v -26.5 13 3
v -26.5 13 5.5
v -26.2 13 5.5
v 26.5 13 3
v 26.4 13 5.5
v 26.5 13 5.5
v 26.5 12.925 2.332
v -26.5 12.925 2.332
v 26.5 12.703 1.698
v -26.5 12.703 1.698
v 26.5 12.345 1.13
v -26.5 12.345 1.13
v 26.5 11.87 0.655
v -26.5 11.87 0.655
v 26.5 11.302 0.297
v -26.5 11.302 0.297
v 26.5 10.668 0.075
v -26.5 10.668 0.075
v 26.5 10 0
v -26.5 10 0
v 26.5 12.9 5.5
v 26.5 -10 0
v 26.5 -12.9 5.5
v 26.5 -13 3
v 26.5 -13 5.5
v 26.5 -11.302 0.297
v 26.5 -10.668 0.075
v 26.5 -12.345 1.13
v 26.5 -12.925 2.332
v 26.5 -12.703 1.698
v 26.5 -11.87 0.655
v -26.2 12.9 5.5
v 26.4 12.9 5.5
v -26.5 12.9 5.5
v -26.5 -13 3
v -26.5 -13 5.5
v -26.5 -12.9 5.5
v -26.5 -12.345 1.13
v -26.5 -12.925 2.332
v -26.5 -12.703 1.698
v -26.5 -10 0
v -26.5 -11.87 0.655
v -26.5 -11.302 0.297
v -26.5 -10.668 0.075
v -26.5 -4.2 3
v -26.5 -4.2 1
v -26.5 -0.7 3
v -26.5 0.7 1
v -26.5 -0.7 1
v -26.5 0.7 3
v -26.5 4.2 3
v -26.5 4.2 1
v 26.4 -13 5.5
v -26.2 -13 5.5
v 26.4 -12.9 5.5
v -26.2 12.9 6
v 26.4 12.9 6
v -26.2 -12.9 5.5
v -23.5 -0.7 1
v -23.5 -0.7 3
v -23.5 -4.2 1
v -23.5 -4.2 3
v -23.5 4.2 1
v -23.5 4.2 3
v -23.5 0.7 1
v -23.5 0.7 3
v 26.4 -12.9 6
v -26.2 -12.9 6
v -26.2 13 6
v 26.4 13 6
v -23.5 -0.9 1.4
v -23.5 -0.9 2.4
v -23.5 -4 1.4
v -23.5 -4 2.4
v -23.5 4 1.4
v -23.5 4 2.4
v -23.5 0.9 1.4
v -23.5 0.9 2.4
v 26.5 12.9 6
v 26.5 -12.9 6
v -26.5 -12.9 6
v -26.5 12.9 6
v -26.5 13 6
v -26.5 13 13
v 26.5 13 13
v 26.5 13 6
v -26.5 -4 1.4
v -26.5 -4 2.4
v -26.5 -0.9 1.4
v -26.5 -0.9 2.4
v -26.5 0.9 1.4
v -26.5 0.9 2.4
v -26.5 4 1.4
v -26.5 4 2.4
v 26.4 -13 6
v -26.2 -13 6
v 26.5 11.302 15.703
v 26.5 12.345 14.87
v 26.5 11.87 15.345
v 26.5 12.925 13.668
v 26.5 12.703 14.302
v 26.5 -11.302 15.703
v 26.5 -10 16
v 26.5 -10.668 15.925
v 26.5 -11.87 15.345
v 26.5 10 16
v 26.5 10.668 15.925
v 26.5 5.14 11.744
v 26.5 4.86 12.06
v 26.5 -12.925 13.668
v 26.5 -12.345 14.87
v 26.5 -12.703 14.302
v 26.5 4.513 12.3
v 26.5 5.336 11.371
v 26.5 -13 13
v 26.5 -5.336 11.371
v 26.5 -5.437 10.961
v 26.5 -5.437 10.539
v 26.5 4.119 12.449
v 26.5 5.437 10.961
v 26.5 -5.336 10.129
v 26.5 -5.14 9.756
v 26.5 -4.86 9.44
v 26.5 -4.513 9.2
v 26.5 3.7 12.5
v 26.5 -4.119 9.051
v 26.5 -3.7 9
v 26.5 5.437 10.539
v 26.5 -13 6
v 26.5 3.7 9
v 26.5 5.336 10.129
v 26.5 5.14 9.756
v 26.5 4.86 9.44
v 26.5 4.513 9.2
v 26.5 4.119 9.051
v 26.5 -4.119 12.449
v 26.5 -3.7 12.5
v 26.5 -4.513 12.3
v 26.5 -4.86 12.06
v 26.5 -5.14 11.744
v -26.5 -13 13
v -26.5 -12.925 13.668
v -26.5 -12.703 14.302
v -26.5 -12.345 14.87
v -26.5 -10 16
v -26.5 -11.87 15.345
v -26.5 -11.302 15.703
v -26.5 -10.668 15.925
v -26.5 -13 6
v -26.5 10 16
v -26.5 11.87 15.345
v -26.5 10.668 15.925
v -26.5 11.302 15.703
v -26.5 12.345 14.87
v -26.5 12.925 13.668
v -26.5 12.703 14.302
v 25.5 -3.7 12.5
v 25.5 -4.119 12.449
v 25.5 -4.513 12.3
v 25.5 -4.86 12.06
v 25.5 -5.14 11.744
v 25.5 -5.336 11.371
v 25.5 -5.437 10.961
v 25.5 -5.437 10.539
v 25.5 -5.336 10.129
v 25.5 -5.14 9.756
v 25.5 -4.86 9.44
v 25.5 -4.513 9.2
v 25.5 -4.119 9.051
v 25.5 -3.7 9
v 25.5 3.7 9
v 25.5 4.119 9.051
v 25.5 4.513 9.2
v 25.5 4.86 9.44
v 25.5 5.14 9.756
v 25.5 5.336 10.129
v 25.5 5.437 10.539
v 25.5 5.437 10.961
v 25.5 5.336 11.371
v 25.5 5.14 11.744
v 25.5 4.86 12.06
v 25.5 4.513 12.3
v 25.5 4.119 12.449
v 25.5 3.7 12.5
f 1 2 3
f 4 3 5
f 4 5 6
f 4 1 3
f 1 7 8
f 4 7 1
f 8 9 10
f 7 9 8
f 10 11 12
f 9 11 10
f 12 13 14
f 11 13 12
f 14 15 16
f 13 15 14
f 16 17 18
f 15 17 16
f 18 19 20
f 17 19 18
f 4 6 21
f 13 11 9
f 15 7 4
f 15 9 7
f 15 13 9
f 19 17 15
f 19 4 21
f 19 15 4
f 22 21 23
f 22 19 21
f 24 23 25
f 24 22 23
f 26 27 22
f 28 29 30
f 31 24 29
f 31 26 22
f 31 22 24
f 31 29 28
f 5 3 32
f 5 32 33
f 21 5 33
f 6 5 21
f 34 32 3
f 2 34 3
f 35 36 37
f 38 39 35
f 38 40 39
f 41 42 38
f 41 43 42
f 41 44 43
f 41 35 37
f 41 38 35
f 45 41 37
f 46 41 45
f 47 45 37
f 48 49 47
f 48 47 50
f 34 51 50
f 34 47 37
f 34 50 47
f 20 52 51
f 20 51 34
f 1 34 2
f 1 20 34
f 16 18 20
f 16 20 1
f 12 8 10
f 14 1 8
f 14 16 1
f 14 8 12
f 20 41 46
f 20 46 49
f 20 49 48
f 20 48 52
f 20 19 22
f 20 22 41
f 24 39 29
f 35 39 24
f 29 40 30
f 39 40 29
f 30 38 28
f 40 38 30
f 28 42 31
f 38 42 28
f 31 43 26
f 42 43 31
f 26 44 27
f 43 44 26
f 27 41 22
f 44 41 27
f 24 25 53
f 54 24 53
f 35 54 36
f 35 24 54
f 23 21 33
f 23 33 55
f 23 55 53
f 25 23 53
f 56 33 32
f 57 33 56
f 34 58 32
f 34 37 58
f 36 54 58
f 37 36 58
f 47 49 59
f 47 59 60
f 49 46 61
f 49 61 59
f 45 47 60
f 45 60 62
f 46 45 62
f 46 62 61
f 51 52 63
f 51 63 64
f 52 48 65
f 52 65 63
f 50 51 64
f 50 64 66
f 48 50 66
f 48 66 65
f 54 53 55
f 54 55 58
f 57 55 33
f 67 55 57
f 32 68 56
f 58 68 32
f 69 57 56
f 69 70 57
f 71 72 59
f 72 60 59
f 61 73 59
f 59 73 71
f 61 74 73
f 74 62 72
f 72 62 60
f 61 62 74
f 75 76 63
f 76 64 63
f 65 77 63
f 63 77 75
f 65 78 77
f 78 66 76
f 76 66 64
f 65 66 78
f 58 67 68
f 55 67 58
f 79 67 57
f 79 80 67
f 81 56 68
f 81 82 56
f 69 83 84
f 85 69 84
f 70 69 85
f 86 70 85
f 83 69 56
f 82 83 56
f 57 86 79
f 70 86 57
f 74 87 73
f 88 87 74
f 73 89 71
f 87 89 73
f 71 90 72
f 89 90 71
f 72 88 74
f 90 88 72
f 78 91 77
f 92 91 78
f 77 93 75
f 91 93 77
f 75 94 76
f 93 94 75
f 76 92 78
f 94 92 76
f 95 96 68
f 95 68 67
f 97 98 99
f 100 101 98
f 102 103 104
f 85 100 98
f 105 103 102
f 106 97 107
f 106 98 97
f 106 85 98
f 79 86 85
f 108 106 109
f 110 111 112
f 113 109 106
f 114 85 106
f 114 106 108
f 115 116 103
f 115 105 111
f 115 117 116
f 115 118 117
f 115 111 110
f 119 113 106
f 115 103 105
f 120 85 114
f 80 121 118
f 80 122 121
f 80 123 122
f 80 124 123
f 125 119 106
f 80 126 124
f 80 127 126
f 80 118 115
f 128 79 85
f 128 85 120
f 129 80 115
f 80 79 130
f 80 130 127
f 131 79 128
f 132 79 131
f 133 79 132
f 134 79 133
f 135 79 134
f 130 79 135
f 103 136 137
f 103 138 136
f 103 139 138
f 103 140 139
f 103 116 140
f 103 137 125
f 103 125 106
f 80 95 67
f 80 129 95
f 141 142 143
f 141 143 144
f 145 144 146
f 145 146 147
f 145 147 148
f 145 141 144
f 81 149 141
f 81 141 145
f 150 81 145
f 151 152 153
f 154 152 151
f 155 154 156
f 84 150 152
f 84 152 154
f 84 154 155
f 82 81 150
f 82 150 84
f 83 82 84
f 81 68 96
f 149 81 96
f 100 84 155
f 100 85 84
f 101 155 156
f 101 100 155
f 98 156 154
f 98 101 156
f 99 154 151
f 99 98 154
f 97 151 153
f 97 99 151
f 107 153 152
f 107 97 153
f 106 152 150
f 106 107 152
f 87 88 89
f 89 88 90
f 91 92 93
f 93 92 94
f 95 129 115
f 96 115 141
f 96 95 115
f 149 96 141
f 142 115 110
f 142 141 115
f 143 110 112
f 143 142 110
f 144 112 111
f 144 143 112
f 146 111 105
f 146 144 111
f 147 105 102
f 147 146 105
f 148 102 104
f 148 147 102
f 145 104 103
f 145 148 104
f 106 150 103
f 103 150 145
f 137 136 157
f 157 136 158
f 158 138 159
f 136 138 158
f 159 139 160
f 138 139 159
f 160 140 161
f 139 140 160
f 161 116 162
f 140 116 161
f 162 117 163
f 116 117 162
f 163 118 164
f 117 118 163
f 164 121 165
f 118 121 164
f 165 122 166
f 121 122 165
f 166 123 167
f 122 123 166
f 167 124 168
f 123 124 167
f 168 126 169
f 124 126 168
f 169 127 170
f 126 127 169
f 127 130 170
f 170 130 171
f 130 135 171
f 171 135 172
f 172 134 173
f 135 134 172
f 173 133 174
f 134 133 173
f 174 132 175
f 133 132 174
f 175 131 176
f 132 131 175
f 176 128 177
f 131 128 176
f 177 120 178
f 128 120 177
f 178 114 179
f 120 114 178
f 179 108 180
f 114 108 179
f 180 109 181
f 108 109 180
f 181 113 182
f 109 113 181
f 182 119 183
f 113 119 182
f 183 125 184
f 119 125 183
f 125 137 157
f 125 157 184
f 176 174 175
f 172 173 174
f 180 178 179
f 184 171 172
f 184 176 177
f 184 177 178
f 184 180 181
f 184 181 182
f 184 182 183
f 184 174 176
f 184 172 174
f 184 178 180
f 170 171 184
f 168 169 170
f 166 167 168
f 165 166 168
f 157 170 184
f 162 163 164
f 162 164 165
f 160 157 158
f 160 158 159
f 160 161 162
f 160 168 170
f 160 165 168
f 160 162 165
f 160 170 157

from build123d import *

# Parameters (mm, degrees)
SKETCH_W        = 53
SKETCH_H        = 26
PAD_DEPTH       = 16
FILLET_R        = 3
SKETCH001_W     = 3.5
SKETCH001_H     = 2
POCKET_DEPTH    = 3
SKETCH002_W     = 26
SKETCH002_H     = 0.5
POCKET001_DEPTH = 0.3
SKETCH003_W     = 53
SKETCH003_H     = 0.5
POCKET002_DEPTH = 0.1
SKETCH004_W     = 26
SKETCH004_H     = 0.5
POCKET003_DEPTH = 0.1
SKETCH005_W     = 53
SKETCH005_H     = 0.5
POCKET004_DEPTH = 0.1
SKETCH006_W     = 3.1
SKETCH006_H     = 1
PAD001_DEPTH    = 3
POCKET005_DEPTH = 1


with BuildPart() as part:
    # Sketch → Pad (new body)
    with BuildSketch(Plane.XY):
        Rectangle(SKETCH_W, SKETCH_H)
    extrude(amount=PAD_DEPTH)

    # Fillet
    fillet_edges = [part.edges().sort_by_distance(p)[0] for p in [
        (0, -13, 16),
        (0, -13, 0),
        (0, 13, 16),
        (0, 13, 0),
    ]]
    fillet(fillet_edges, radius=FILLET_R)

    # Sketch001 (on Face2 of Fillet) → Pocket (cut)
    with BuildSketch(Plane(origin=(-26.5, 0, 0), x_dir=(0, -1, 0), z_dir=(-1, 0, 0))):
        with Locations((-2.45, 2)):
            Rectangle(SKETCH001_W, SKETCH001_H)
        with Locations((2.45, 2)):
            Rectangle(SKETCH001_W, SKETCH001_H)
    extrude(amount=-POCKET_DEPTH, mode=Mode.SUBTRACT)

    # Sketch002 (on Face2 of Pocket) → Pocket001 (cut)
    with BuildSketch(Plane(origin=(-26.5, 0, 0), x_dir=(0, -1, 0), z_dir=(-1, 0, 0))):
        with Locations((0, 5.75)):
            Rectangle(SKETCH002_W, SKETCH002_H)
    extrude(amount=-POCKET001_DEPTH, mode=Mode.SUBTRACT)

    # Sketch003 (on Face1 of Pocket001) → Pocket002 (cut)
    with BuildSketch(Plane(origin=(0, 13, 0), x_dir=(-1, 0, 0), z_dir=(0, 1, 0))):
        with Locations((0, 5.75)):
            Rectangle(SKETCH003_W, SKETCH003_H)
    extrude(amount=-POCKET002_DEPTH, mode=Mode.SUBTRACT)

    # Sketch004 (on Face3 of Pocket002) → Pocket003 (cut)
    with BuildSketch(Plane.YZ.offset(26.5)):
        with Locations((0, 5.75)):
            Rectangle(SKETCH004_W, SKETCH004_H)
    extrude(amount=-POCKET003_DEPTH, mode=Mode.SUBTRACT)

    # Sketch005 (on Face10 of Pocket003) → Pocket004 (cut)
    with BuildSketch(Plane.XZ.offset(13)):
        with Locations((0, 5.75)):
            Rectangle(SKETCH005_W, SKETCH005_H)
    extrude(amount=-POCKET004_DEPTH, mode=Mode.SUBTRACT)

    # Sketch006 (on Face7 of Pocket004) → Pad001 (join)
    with BuildSketch(Plane(origin=(-26.5, 0, 0), x_dir=(0, -1, 0), z_dir=(-1, 0, 0))):
        with Locations((-2.45, 1.9)):
            Rectangle(SKETCH006_W, SKETCH006_H)
        with Locations((2.45, 1.9)):
            Rectangle(SKETCH006_W, SKETCH006_H)
    extrude(amount=-PAD001_DEPTH)

    # Sketch007 (on Face45 of Pad001) → Pocket005 (cut)
    with BuildSketch(Plane.YZ.offset(26.5)):
        with BuildLine():
            ThreePointArc((-3.7, 12.5), (-5.45, 10.75), (-3.7, 9))
            Line((-3.7, 9), (3.7, 9))
            ThreePointArc((3.7, 9), (5.45, 10.75), (3.7, 12.5))
            Line((-3.7, 12.5), (3.7, 12.5))
        make_face()
    extrude(amount=-POCKET005_DEPTH, mode=Mode.SUBTRACT)


solid = part.part
